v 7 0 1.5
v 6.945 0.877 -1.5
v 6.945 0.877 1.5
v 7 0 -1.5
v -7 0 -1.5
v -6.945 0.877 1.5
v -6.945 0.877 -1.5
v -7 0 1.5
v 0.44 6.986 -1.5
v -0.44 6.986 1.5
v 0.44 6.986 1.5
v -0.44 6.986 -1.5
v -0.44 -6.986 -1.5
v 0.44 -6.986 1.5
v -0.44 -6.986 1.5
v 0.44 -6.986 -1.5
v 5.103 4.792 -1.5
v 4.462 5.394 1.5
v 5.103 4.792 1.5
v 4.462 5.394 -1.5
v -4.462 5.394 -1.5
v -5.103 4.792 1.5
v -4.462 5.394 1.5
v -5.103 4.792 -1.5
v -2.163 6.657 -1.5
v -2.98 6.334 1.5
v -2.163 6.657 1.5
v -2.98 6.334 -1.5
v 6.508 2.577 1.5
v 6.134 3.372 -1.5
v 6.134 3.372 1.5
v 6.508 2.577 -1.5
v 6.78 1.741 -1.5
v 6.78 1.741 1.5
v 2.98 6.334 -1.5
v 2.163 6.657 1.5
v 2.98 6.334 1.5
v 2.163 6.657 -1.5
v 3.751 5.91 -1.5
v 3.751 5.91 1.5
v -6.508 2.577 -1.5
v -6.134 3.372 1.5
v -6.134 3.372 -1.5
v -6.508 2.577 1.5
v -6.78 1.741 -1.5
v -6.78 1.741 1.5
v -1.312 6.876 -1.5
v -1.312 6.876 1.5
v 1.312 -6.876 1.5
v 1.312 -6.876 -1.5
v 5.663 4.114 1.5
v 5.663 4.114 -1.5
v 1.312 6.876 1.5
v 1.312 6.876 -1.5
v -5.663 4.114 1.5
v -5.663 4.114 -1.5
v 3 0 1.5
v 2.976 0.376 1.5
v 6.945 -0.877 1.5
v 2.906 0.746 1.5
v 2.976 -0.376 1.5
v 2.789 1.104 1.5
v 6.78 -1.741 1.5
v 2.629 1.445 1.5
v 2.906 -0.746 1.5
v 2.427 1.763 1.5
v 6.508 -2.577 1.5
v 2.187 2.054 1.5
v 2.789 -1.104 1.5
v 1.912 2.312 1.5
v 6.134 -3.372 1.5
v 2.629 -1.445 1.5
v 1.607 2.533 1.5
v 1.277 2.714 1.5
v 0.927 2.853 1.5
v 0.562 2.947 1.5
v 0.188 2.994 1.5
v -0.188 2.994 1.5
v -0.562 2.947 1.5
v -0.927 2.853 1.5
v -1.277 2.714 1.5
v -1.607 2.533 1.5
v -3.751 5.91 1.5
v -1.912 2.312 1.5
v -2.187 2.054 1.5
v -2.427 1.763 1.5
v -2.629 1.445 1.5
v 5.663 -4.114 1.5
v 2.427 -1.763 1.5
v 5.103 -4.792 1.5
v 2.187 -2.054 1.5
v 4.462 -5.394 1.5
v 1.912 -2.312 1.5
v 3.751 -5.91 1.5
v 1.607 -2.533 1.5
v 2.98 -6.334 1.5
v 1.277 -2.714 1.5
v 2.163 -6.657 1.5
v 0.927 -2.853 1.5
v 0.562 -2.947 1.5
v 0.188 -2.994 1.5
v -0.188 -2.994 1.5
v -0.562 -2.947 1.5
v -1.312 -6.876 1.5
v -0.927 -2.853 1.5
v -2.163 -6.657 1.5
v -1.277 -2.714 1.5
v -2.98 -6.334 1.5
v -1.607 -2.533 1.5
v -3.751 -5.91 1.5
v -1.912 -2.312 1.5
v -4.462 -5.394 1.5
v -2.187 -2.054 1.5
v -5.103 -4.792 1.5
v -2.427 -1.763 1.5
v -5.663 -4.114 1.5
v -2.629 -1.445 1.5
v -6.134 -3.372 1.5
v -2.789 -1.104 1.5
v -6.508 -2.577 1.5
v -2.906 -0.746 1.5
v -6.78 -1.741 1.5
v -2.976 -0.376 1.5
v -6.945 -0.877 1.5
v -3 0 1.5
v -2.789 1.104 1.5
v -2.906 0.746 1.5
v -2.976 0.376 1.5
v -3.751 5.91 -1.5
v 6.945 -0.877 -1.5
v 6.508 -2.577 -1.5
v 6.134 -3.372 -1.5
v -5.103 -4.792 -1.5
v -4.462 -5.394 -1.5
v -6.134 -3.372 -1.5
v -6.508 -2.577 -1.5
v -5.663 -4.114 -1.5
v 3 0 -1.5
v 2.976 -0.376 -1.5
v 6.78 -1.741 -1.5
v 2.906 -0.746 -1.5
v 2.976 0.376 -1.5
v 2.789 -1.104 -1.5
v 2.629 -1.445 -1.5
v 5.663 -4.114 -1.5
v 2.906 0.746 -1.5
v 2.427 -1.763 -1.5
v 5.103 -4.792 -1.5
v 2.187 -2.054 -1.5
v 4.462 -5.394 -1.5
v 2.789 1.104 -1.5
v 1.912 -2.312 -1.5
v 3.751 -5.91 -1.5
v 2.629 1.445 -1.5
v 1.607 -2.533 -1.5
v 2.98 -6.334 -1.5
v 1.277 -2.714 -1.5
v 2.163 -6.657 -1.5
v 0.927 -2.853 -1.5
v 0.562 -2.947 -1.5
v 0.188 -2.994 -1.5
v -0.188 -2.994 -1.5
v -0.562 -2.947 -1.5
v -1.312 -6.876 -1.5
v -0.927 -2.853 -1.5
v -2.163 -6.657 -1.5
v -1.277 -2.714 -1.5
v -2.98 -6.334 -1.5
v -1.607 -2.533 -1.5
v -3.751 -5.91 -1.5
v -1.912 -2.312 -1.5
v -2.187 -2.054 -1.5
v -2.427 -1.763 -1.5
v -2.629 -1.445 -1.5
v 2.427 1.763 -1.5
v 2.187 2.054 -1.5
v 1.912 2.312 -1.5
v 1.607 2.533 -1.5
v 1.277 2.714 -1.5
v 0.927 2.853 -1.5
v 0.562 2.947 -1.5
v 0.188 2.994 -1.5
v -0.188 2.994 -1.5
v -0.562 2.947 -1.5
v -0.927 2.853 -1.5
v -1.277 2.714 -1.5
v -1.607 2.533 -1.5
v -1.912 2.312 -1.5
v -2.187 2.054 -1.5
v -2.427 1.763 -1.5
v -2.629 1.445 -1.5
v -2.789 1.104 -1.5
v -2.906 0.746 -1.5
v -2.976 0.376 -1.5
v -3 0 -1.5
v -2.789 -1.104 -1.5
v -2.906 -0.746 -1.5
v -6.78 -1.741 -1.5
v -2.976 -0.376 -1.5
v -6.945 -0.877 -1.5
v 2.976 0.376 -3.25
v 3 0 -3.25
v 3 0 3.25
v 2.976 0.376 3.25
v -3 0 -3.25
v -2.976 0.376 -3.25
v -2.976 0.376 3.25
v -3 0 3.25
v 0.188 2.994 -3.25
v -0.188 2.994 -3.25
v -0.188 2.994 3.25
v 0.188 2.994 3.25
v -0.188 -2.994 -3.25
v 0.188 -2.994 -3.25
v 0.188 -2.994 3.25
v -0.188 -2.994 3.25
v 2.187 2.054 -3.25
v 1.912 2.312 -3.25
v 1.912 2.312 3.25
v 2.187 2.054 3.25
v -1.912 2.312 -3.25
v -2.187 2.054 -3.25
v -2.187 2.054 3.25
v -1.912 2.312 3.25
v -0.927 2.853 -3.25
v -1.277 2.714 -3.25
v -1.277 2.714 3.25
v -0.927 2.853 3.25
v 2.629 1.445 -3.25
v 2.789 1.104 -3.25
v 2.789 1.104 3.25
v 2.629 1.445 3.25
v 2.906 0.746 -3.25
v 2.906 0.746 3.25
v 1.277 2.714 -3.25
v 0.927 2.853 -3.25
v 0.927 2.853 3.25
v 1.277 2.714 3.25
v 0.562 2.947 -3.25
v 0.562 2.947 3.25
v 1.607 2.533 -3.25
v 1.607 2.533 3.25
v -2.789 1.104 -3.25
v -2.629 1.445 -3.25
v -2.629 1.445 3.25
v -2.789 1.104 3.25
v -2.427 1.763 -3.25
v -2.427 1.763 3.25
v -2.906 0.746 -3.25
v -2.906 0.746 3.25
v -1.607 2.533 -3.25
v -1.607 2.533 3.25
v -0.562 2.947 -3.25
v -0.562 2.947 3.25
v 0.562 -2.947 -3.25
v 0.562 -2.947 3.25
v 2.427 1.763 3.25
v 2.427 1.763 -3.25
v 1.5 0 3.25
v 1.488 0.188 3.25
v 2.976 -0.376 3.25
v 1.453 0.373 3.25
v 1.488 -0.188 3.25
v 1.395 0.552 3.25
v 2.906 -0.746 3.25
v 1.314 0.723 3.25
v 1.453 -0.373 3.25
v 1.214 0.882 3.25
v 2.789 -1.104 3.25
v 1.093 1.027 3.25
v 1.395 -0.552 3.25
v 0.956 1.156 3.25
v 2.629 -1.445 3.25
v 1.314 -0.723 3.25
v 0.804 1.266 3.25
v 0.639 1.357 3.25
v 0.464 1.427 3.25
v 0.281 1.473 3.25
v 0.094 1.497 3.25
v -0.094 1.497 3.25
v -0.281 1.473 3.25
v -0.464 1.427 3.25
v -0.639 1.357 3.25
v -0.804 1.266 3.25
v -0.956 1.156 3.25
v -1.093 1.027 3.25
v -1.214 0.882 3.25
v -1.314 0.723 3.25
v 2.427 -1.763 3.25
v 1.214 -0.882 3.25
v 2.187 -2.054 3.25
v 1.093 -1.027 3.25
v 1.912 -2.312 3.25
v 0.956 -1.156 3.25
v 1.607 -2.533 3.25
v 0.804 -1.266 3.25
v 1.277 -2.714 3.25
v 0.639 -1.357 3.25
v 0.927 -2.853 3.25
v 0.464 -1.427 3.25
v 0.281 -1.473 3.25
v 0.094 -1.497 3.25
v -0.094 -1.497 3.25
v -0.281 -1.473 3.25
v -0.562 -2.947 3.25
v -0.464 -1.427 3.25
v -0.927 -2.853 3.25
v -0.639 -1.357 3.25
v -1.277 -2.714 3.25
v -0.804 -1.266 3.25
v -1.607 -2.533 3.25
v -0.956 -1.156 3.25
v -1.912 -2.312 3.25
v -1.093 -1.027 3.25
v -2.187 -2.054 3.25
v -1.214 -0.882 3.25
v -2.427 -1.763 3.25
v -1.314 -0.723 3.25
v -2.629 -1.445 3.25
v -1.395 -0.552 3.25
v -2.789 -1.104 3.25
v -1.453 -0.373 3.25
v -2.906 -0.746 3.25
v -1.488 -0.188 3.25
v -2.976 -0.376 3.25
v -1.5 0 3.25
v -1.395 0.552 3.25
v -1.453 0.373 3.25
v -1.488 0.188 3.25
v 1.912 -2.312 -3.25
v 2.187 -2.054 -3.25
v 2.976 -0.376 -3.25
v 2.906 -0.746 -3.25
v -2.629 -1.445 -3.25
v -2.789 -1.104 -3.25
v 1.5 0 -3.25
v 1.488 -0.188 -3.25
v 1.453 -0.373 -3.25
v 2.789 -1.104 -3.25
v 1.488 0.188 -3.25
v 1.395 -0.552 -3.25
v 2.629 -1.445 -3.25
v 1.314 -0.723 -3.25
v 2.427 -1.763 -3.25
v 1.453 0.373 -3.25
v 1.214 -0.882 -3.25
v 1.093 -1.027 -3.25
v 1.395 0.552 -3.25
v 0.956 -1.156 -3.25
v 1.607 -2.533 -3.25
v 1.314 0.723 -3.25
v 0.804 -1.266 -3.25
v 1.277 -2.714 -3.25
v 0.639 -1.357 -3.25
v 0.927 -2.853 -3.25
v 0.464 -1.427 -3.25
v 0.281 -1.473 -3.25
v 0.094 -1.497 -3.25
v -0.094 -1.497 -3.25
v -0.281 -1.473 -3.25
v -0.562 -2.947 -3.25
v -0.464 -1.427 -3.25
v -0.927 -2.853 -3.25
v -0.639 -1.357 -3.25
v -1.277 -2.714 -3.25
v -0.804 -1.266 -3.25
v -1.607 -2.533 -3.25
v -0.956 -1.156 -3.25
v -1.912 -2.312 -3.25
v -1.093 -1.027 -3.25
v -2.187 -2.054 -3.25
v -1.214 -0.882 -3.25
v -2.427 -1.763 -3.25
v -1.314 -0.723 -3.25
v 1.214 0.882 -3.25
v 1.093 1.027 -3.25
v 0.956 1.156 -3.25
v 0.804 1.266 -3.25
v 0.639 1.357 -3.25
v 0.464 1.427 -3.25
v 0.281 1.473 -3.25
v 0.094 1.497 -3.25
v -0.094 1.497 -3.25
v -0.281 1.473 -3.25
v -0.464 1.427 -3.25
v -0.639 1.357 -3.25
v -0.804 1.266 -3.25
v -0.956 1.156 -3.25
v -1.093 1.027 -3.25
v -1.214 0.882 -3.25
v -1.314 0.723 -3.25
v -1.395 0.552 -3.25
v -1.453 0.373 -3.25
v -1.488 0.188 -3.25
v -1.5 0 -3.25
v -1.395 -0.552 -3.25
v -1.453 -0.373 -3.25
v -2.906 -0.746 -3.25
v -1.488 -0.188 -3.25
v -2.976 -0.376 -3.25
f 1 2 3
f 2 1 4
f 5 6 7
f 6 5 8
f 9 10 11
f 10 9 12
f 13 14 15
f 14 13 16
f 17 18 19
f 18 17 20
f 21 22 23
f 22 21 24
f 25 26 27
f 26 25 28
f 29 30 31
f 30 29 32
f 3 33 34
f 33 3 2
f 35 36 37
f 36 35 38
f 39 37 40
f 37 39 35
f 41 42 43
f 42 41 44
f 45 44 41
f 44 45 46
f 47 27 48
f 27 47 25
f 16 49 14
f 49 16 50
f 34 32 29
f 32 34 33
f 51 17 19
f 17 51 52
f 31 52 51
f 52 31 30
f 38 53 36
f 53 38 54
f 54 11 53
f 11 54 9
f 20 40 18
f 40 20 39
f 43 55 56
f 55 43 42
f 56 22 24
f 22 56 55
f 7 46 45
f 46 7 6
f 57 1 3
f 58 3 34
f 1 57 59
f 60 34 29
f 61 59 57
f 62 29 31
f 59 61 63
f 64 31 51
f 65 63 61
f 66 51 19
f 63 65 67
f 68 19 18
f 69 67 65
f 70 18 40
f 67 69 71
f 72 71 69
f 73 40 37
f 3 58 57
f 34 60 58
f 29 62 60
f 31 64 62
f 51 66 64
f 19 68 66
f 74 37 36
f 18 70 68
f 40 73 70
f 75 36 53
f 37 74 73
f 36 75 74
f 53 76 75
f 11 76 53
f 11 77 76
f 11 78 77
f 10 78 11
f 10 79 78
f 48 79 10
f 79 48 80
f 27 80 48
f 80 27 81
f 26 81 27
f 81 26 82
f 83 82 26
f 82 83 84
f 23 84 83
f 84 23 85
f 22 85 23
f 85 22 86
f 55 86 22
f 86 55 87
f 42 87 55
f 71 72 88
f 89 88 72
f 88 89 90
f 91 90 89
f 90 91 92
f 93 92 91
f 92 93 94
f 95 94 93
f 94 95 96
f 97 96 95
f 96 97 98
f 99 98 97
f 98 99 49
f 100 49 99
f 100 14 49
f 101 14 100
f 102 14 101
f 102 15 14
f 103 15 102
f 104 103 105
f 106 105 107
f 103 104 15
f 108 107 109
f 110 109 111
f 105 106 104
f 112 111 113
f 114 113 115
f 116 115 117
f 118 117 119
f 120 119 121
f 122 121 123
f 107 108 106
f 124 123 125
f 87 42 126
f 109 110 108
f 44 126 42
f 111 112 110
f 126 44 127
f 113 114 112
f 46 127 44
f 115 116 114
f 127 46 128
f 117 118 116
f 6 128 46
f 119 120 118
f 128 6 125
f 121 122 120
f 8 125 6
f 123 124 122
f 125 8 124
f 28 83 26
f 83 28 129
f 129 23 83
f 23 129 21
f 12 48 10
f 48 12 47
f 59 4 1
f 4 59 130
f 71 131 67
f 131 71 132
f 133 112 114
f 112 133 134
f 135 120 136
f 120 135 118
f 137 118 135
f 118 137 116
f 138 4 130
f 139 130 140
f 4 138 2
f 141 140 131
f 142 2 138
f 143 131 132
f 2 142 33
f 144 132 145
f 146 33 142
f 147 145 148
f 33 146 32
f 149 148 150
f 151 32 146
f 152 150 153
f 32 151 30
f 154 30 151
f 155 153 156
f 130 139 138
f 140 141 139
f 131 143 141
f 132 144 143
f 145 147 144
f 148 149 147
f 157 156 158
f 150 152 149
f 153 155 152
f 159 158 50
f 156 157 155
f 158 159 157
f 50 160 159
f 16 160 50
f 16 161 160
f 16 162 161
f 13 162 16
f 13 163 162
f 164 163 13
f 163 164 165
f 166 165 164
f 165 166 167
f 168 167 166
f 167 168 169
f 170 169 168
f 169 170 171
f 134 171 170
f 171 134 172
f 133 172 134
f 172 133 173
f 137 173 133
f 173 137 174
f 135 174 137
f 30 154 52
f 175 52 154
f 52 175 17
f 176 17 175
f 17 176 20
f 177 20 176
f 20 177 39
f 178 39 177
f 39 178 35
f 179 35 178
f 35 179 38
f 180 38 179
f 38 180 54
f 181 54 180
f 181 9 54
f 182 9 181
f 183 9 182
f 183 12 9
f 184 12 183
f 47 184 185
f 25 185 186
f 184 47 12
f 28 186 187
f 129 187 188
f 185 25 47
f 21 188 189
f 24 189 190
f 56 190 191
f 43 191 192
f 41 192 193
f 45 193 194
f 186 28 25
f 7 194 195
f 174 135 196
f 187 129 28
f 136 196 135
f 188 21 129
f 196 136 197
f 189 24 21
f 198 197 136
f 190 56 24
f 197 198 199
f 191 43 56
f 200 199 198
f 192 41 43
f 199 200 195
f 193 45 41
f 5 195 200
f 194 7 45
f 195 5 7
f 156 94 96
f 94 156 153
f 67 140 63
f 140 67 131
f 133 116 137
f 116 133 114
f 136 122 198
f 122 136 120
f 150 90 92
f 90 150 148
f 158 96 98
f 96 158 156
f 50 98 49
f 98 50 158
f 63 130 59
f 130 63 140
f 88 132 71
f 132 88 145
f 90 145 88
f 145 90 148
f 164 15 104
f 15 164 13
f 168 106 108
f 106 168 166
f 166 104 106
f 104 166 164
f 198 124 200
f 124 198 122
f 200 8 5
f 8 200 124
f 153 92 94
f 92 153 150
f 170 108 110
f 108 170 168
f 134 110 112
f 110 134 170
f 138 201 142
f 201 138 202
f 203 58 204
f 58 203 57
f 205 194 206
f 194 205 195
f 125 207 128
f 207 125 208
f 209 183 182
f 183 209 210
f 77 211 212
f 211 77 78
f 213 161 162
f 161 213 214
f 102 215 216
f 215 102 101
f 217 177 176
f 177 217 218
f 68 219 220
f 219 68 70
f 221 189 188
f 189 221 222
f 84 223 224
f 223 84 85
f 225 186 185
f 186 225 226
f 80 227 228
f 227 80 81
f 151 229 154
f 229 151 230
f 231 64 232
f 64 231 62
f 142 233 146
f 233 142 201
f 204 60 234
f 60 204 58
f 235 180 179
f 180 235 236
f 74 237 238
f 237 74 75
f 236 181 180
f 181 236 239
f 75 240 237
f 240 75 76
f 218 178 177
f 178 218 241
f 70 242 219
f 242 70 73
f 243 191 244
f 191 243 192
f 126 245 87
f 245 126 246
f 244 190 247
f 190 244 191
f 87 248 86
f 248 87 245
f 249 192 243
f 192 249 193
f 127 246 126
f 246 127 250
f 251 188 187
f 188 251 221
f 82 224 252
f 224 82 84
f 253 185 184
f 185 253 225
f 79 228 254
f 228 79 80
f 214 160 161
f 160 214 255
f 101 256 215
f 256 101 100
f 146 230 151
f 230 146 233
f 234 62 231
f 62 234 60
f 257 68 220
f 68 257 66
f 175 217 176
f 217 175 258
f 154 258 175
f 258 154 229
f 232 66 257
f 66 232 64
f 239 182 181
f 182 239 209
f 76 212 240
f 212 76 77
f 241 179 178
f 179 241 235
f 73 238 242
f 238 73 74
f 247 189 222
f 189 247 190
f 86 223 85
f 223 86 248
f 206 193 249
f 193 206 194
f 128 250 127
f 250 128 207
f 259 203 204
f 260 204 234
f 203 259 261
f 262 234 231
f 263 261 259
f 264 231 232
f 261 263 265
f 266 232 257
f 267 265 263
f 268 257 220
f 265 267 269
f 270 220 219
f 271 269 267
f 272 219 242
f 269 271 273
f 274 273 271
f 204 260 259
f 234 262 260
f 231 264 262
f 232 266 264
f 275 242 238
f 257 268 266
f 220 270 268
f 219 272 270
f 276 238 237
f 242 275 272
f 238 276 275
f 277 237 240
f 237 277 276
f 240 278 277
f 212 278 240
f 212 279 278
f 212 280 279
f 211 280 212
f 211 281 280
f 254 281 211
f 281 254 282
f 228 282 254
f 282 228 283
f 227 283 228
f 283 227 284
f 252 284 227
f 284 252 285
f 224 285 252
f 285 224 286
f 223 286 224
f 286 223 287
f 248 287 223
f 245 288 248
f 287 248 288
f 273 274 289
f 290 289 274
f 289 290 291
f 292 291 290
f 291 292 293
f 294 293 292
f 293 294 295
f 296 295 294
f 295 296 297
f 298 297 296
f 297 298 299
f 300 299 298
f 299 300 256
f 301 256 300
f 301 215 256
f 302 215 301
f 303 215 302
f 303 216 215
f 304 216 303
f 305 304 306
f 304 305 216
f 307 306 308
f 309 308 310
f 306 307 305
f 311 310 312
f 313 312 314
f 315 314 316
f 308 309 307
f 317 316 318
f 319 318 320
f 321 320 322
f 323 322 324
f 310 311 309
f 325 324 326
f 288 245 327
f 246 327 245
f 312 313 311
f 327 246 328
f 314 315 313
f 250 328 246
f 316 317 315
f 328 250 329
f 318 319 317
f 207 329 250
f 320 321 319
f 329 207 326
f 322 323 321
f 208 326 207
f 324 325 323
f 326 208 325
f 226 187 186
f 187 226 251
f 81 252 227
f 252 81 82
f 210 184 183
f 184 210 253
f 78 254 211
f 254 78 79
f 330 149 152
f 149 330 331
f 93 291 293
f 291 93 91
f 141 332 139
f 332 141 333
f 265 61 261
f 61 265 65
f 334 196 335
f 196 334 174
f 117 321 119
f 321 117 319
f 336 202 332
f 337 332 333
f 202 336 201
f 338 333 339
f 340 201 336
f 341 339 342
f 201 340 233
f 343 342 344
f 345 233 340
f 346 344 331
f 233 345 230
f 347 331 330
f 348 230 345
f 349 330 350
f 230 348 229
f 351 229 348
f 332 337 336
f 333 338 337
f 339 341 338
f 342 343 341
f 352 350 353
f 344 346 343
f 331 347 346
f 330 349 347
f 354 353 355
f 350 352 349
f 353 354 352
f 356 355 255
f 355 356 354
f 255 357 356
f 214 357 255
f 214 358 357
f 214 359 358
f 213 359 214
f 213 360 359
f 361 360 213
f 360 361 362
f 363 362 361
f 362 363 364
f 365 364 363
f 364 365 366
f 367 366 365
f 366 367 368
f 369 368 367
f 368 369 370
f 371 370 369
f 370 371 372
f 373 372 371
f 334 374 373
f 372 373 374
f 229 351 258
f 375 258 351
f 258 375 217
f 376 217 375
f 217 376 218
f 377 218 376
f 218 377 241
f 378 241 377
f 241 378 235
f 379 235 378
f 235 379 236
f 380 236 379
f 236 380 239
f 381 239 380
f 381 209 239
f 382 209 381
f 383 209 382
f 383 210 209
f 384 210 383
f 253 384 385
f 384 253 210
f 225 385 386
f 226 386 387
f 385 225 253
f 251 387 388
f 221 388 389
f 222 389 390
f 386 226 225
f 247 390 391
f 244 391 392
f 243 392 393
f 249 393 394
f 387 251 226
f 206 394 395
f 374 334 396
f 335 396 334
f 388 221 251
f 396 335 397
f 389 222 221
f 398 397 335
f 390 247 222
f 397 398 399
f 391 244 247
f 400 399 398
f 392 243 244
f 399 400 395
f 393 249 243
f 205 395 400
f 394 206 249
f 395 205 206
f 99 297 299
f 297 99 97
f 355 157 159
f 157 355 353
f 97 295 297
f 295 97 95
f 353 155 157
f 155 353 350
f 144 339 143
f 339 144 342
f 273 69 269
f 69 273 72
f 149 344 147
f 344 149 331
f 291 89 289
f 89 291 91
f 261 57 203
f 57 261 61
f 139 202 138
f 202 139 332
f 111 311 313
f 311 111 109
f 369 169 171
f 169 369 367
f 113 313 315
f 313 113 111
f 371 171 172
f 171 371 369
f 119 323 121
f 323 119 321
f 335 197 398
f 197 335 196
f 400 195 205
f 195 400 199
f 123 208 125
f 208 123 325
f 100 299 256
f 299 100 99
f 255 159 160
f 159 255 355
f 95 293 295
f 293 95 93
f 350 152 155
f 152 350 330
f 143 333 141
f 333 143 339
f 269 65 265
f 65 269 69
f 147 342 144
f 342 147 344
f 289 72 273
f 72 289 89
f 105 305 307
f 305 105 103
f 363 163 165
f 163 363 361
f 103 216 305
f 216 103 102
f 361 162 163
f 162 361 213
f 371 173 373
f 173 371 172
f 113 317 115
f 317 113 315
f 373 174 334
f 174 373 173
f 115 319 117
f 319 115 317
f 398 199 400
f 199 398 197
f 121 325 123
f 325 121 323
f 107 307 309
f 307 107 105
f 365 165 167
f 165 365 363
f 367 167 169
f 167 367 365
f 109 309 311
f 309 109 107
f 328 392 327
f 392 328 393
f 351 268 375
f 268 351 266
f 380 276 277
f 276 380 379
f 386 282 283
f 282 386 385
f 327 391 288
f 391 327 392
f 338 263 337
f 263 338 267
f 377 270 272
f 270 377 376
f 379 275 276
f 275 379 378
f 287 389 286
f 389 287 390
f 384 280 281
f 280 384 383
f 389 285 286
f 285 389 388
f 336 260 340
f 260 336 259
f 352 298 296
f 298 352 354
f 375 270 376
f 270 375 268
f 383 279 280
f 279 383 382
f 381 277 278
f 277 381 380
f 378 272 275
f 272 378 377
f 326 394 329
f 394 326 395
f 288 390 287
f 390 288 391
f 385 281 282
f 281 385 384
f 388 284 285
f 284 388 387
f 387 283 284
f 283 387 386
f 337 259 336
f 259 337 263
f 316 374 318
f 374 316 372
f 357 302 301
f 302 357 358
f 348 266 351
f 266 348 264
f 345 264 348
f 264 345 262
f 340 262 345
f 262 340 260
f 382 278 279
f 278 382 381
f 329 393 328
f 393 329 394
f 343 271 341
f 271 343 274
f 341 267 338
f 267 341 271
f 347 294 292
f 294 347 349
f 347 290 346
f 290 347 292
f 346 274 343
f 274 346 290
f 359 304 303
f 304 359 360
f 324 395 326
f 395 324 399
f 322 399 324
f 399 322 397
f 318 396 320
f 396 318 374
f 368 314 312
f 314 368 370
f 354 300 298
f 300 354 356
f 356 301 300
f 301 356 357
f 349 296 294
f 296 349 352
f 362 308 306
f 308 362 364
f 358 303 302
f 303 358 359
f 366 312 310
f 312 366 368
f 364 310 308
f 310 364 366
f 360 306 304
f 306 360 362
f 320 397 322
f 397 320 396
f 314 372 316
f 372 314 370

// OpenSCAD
$fn = 50;


difference() {
	union() {
		translate(v = [0, 0, -1.5000000000]) {
			rotate(a = [0, 0, 0]) {
				cylinder(h = 3, r = 7.0000000000);
			}
		}
		translate(v = [0, 0, -3.2500000000]) {
			rotate(a = [0, 0, 0]) {
				cylinder(h = 6.5000000000, r = 3.0000000000);
			}
		}
	}
	union() {
		translate(v = [0, 0, -125.0000000000]) {
			rotate(a = [0, 0, 0]) {
				cylinder(h = 250, r = 1.5000000000);
			}
		}
	}
}
